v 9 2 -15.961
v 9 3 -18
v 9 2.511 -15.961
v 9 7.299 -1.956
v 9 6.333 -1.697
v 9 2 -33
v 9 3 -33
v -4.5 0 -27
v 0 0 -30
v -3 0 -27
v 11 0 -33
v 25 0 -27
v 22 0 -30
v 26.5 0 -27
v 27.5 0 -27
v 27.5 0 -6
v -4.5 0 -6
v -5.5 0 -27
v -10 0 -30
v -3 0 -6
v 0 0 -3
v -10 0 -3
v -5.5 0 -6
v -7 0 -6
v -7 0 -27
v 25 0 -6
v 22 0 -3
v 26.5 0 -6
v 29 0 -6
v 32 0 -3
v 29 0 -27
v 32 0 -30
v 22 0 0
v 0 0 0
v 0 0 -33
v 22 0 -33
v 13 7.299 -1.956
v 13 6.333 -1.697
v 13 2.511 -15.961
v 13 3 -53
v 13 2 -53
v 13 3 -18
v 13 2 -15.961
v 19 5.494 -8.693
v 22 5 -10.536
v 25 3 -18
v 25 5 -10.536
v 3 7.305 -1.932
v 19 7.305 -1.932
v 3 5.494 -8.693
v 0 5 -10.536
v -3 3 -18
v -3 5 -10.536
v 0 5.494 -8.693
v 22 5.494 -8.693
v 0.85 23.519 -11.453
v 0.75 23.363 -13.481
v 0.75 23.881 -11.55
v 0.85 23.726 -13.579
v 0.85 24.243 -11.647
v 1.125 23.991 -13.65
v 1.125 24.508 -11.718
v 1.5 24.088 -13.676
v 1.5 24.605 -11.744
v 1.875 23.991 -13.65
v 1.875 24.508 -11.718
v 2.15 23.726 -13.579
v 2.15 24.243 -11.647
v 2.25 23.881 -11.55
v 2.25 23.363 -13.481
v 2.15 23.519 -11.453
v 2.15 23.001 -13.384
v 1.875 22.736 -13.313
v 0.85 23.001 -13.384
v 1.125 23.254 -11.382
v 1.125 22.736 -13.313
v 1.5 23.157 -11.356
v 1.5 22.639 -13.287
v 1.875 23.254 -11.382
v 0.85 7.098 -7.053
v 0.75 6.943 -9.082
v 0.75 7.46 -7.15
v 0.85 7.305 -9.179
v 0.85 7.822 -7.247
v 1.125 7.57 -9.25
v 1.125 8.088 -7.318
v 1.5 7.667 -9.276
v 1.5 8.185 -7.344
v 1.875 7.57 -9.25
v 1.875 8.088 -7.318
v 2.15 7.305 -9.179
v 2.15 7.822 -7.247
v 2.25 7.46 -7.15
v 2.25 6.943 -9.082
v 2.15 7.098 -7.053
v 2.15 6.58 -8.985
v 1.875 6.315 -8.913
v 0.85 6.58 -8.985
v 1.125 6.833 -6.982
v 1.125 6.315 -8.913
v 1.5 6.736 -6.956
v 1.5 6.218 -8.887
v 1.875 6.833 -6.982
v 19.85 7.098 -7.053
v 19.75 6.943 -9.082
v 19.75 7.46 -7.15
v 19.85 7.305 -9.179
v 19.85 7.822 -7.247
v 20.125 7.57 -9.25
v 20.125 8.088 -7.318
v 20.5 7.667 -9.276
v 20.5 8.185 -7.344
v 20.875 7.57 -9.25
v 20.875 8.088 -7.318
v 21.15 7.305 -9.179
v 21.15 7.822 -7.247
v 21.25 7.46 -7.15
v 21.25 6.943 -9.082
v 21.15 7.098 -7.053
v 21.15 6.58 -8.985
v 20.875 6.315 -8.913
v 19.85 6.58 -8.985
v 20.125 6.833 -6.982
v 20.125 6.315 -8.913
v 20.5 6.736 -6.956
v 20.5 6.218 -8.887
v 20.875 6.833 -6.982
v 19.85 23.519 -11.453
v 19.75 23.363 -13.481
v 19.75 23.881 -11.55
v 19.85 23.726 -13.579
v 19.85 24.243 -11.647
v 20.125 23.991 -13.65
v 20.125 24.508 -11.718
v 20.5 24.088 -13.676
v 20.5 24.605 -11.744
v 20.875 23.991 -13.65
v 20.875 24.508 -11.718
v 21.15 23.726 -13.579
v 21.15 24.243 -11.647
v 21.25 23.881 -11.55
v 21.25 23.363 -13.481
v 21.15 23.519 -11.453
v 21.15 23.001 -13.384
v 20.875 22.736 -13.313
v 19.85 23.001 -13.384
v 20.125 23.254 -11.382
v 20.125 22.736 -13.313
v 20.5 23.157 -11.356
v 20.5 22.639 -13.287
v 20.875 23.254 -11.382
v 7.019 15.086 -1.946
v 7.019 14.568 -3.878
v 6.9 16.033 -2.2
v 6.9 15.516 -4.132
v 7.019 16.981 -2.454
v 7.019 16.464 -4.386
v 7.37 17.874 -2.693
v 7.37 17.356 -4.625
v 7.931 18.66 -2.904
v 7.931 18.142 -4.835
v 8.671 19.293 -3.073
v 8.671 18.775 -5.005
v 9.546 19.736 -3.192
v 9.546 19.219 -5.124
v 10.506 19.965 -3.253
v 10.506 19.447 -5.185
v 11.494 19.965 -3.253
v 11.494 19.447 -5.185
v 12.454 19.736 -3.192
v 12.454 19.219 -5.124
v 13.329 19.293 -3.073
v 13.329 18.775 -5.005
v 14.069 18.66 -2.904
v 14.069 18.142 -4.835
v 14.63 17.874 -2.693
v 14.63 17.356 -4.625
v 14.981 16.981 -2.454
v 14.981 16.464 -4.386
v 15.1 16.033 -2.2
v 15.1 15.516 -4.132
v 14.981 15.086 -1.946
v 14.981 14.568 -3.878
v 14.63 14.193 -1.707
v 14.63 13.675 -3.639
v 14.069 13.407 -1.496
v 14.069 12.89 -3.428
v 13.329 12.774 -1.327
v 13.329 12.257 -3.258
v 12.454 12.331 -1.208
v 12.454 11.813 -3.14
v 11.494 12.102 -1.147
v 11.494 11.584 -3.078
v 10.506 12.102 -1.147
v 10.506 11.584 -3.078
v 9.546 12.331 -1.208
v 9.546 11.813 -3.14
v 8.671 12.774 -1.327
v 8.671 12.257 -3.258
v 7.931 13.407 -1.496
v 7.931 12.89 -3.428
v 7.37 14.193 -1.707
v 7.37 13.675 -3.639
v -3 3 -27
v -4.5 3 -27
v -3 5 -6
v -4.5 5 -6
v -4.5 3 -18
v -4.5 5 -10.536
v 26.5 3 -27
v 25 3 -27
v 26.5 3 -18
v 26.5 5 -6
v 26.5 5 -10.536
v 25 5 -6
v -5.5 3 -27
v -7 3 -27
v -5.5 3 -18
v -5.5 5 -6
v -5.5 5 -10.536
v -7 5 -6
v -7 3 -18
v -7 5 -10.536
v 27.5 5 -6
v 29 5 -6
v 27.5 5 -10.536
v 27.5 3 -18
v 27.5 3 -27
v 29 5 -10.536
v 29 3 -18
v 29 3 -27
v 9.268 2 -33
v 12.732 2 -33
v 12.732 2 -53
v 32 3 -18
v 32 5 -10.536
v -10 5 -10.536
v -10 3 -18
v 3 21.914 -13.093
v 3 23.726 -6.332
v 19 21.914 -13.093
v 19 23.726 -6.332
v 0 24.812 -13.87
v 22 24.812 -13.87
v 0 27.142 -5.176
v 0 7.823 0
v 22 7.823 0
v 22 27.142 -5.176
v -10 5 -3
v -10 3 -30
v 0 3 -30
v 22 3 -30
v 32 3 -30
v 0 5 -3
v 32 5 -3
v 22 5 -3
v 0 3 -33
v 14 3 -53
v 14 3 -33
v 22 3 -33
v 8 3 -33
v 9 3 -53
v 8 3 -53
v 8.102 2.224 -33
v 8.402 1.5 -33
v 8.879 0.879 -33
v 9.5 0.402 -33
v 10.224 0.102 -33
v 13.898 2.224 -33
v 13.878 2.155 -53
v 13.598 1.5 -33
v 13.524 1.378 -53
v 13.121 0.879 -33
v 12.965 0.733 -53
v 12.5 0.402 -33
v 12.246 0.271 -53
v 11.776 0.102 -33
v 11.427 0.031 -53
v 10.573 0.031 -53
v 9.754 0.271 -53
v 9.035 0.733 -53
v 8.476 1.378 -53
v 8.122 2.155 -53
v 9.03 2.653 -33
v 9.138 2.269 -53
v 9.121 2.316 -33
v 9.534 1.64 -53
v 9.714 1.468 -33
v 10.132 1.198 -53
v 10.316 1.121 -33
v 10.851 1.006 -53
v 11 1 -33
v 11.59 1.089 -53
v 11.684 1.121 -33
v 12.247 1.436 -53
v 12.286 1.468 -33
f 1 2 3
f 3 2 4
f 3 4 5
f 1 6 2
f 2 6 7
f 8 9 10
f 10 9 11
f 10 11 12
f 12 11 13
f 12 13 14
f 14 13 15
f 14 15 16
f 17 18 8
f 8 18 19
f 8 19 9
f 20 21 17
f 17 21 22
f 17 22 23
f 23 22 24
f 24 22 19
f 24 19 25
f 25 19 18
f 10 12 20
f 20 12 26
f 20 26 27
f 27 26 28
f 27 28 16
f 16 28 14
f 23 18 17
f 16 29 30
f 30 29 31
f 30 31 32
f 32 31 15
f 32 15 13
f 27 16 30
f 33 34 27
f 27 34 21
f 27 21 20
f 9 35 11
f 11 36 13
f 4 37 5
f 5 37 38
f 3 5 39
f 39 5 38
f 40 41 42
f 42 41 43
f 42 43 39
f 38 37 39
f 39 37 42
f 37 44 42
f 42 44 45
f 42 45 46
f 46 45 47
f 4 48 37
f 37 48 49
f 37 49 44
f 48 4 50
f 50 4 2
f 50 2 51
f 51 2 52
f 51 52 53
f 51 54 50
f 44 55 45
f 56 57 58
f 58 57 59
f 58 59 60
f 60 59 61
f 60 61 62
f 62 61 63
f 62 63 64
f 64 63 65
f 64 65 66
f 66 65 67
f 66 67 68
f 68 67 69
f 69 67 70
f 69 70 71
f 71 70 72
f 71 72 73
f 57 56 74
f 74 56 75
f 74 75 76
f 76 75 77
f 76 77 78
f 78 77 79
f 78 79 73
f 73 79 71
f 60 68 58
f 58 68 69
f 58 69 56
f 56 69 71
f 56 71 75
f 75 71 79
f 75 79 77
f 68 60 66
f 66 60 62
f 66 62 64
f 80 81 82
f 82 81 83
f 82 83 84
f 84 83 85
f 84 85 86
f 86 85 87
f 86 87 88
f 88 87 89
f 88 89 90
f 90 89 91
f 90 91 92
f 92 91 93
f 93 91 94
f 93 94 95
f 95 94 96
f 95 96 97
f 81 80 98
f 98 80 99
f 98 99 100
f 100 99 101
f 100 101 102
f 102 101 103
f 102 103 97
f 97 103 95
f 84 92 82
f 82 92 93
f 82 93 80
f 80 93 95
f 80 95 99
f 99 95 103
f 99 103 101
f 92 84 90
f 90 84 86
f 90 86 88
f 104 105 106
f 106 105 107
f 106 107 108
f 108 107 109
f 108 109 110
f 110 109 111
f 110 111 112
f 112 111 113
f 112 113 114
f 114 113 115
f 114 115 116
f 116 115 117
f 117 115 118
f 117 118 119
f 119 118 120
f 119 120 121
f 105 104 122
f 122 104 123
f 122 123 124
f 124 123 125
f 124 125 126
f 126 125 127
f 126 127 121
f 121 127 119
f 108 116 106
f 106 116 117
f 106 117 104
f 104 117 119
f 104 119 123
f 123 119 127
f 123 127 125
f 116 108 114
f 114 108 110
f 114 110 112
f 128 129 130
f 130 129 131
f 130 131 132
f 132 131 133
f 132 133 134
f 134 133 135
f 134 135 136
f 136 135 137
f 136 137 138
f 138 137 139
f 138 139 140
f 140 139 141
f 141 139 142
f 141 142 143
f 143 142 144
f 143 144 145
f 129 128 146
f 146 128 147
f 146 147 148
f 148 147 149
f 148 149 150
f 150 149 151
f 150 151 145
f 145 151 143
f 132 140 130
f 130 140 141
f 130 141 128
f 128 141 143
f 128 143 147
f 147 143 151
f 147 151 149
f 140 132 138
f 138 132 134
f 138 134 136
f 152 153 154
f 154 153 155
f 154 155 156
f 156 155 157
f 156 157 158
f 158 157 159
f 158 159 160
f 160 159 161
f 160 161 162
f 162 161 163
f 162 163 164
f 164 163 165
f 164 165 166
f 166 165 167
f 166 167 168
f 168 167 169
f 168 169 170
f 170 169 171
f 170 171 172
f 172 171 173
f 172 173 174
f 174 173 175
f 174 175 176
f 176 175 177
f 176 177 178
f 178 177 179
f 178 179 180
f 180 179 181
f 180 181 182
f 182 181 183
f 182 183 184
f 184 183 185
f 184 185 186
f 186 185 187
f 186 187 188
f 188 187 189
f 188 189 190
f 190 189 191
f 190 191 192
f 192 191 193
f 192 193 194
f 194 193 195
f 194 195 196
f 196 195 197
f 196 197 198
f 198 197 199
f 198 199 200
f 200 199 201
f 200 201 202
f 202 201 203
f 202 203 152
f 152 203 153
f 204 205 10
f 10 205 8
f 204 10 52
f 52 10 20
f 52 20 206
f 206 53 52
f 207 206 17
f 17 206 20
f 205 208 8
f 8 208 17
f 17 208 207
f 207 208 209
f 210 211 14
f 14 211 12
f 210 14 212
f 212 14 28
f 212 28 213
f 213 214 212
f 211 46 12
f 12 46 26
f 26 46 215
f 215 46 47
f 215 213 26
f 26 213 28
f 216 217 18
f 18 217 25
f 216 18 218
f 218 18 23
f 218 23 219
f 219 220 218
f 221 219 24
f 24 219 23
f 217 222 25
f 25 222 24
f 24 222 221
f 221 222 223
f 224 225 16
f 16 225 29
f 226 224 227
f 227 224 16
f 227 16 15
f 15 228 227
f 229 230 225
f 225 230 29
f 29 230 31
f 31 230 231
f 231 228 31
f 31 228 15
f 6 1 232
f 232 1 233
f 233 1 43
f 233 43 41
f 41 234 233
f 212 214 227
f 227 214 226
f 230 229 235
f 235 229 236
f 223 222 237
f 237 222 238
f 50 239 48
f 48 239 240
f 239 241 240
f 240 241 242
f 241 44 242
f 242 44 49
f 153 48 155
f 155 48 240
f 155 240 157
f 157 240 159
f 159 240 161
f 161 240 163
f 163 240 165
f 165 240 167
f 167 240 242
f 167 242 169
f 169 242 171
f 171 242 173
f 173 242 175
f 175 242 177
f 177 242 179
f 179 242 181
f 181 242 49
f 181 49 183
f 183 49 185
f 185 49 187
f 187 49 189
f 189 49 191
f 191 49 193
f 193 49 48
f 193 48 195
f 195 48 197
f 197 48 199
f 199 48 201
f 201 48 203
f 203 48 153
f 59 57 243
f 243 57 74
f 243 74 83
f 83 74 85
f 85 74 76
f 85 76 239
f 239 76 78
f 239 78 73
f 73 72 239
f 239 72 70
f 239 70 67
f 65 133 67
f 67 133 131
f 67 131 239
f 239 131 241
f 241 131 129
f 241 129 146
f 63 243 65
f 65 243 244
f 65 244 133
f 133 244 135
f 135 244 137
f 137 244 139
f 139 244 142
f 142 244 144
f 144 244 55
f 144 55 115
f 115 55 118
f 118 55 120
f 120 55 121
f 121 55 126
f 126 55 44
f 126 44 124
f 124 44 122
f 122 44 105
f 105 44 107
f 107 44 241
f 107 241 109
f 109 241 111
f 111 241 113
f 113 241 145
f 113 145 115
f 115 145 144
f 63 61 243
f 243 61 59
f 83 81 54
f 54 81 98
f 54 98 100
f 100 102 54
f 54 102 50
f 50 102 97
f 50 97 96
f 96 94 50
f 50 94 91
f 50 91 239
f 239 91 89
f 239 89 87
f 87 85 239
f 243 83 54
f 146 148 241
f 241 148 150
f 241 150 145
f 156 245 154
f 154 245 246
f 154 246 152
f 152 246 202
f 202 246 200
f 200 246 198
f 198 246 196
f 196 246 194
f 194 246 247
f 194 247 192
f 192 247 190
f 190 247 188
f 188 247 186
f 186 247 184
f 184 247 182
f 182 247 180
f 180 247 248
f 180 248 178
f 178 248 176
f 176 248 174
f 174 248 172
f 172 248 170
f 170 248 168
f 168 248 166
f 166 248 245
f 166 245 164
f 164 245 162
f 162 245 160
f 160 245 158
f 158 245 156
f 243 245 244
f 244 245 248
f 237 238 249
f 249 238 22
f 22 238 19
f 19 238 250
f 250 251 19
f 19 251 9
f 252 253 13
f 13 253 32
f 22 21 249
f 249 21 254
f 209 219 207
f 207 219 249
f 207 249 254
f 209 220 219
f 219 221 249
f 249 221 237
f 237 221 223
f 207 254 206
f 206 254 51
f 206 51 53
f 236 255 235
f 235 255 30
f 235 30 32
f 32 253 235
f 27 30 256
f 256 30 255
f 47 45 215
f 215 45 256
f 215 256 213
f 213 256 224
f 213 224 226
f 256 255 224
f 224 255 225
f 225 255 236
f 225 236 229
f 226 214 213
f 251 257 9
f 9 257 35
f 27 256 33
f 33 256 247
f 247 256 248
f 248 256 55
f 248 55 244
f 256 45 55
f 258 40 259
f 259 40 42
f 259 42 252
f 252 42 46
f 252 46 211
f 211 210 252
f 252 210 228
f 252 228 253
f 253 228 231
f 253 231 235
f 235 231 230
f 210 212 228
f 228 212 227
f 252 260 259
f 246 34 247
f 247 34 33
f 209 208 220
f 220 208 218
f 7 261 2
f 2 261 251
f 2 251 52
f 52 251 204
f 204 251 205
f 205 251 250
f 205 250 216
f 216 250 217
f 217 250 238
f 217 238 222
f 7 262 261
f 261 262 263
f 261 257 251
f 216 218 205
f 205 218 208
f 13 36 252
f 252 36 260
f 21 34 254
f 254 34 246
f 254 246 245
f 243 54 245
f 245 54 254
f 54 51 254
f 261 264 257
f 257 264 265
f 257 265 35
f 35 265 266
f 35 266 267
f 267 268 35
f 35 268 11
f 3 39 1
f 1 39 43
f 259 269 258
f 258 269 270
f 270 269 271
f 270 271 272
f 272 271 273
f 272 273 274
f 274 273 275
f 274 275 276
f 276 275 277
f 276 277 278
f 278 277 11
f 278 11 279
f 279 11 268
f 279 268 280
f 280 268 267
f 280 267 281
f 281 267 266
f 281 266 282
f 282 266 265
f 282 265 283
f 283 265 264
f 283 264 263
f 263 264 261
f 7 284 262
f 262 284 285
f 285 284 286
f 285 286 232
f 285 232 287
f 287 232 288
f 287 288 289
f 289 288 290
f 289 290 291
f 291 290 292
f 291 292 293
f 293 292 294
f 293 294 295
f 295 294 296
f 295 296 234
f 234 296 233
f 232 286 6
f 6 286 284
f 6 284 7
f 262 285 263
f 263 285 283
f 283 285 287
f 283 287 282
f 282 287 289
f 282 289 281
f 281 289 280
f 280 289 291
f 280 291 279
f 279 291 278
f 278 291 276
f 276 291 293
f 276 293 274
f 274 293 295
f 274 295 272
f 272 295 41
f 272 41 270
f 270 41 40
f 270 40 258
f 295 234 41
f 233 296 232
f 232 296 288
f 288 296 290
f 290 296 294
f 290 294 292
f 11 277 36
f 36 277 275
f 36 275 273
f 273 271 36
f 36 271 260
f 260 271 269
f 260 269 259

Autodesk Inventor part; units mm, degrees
ref_plane "YZ Plane" through (0, 0, 0) normal (1, 0, 0) x (0, 1, 0)
ref_plane "XZ Plane" through (0, 0, 0) normal (0, 1, 0) x (-1, 0, 0)
ref_plane "XY Plane" through (0, 0, 0) normal (0, 0, 1) x (1, 0, 0)
sketch "Boceto9" plane through (0, 0, 0) normal (1, 0, 0) x (0, 1, 0)
  line L0 (0, 0) -> (0, -3)
  line L1 (0, -3) -> (0, -33)
  line L2 (0, -3) -> (3, -3)
  line L3 (3, -3) -> (3, -33)
  line L4 (3, -33) -> (0, -33)
  line L5 (3, -3) -> (3, -18)
  line L6 (3, -18) -> (7.8231, 0)
  line L7 (7.8231, 0) -> (0, 0)
  dimension "d22" = 3
  dimension "d23" = 30
  dimension "d24" = 3
  dimension "d25" = 15
  dimension "d26" = 15
extrude "Extrusión6" add sketch "Boceto9" along normal blind 22
sketch "Boceto10" plane through (0, 0, -33) normal (0, -1, 0) x (1, 0, 0)
  line L0 (22, 15) -> (22, 33) projected
  line L1 (22, 33) -> (22, 30)
  line L2 (22, 30) -> (22.6923, 30)
  line L3 (22, 30) -> (32, 30)
  line L4 (32, 30) -> (32, 3)
  line L5 (32, 3) -> (22, 3)
  line L6 (22, 0) -> (22, 15) projected
  line L7 (0, 33) -> (22, 33) projected
  line L8 (11, 33) -> (11, 0)
  line L9 (0, 0) -> (22, 0) projected
  line L10 (0, 15) -> (0, 33)
  line L11 (0, 33) -> (0, 30)
  line L12 (0, 30) -> (-0.6923, 30)
  line L13 (0, 30) -> (-10, 30)
  line L14 (-10, 30) -> (-10, 3)
  line L15 (-10, 3) -> (0, 3)
  line L16 (0, 0) -> (0, 15)
  line L17 (22, 33) -> (0, 33)
  line L18 (22, 0) -> (0, 0)
  dimension "d29" = 3
  dimension "d31" = 10
  dimension "d32" = 27
extrude "Extrusión7" add sketch "Boceto10" against normal blind 5 contours L0 L2 L3 L4 L5 L6 | L10 L16 L15 L14 L13 L12
sketch "Boceto11" plane through (32, 0, -3) normal (1, 0, 0) x (0, 0, -1)
  line L0 (27, 3) -> (15, 3) projected
  line L1 (15, 3) -> (7.5359, 5) projected
  line L2 (27, 5) -> (7.5359, 5) projected
  line L3 (27, 3) -> (15, 3) projected
  line L4 (15, 3) -> (7.5359, 5) projected
  line L5 (27, 5) -> (7.5359, 5) projected
  line L6 (27, 3) -> (27, 5) projected
  line L7 (27, 0) -> (0, 0) projected
  line L8 (0, 5) -> (27, 5) projected
  line L9 (0, 5) -> (27, 5) projected
  line L10 (27, 5) -> (7.5359, 5) projected
  line L11 (0, 5) -> (7.5359, 5) projected
  line L12 (27, 0) -> (0, 0) projected
  line L13 (27, 0) -> (27, 5) projected
  line L14 (0, 5) -> (27, 5) projected
  line L15 (0, 0) -> (0, 5) projected
  line L16 (27, 0) -> (30, 0) projected
  line L17 (30, 0) -> (30, 3) projected
  line L18 (27, 0) -> (27, 3) projected
  line L19 (30, 3) -> (27, 3) projected
  line L20 (30, 0) -> (30, 3) projected
  line L21 (27, 0) -> (30, 0) projected
  line L22 (30, 0) -> (30, 3) projected
  line L23 (30, 0) -> (30, 3) projected
  line L24 (30, 3) -> (27, 3) projected
  line L25 (30, 3) -> (27, 3) projected
  line L26 (27, 3) -> (15, 3) projected
  line L27 (27, 3) -> (15, 3) projected
  line L28 (30, 3) -> (27, 3) projected
  line L29 (-3, 0) -> (0, 0) projected
  line L30 (0, 0) -> (27, 0) projected
  line L31 (27, 0) -> (30, 0) projected
  line L32 (27, 0) -> (30, 0) projected
  line L33 (27, 0) -> (0, 0) projected
  line L34 (-3, 0) -> (0, 0) projected
  line L35 (15, 3) -> (7.5359, 5) projected
  line L36 (7.5359, 5) -> (-3, 7.8231) projected
  line L37 (7.5359, 5) -> (-3, 7.8231) projected
  line L38 (15, 3) -> (7.5359, 5) projected
  line L39 (27, 0) -> (27, 3) projected
  line L40 (27, 0) -> (27, 5) projected
  line L41 (15, 3) -> (7.5359, 5) projected
  line L42 (7.5359, 5) -> (27, 5) projected
  line L43 (27, 3) -> (27, 5) projected
  line L44 (27, 3) -> (15, 3) projected
  line L45 (27, 3) -> (15, 3) projected
  line L46 (27, 3) -> (27, 5) projected
  line L47 (7.5359, 5) -> (27, 5) projected
  line L48 (15, 3) -> (7.5359, 5) projected
  line L49 (27, 0) -> (27, 5) projected
  line L50 (27, 3) -> (27, 5) projected
  line L51 (27, 0) -> (27, 3) projected
  line L52 (27, 5) -> (0, 5) projected
  line L53 (7.5359, 5) -> (0, 5) projected
  line L54 (7.5359, 5) -> (27, 5) projected
  line L55 (0, 0) -> (27, 0) projected
  line L56 (0, 0) -> (0, 5) projected
  line L57 (27, 5) -> (0, 5) projected
  line L58 (27, 0) -> (27, 5) projected
  line L59 (0, 0) -> (27, 0) projected
  line L60 (27, 5) -> (0, 5) projected
  line L61 (27, 3) -> (27, 0) projected
  line L62 (27, 3) -> (27, 5) projected
  line L63 (30, 3) -> (27, 3) projected
  line L64 (30, 0) -> (30, 3) projected
  line L65 (27, 0) -> (30, 0) projected
  line L66 (27, 0) -> (27, 5) projected
  line L67 (27, 3) -> (27, 0) projected
  line L68 (27, 3) -> (27, 5) projected
  line L69 (27, 0) -> (27, 5) projected
  line L70 (27, 3) -> (27, 0) projected
  line L71 (27, 0) -> (30, 0) projected
  line L72 (30, 0) -> (30, 3) projected
  line L73 (30, 3) -> (27, 3) projected
extrude "Extrusión8" cut sketch "Boceto11" against normal up to surface (42 mm away) contours L0 L1 L2 L6
sketch "Boceto12" plane through (22, 0, 0) normal (1, 0, 0) x (0, 0, -1)
  line L0 (10.5359, 5) -> (0, 7.8231) projected
  line L1 (0, 7.8231) -> (5.1764, 27.1416)
  line L2 (0, 7.8231) -> (20, 7.8231) construction
  line L3 (5.1764, 27.1416) -> (13.8697, 24.8122)
  line L4 (13.8697, 24.8122) -> (8.6933, 5.4937)
  point P0 (0, 0)
  dimension "d37" = 20
  dimension "d38" = 75
  dimension "d40" = 9
extrude "Extrusión9" add sketch "Boceto12" against normal up to surface (22 mm away)
sketch "Boceto13" plane through (22, 24.8122, -13.8697) normal (0, -0.2588, -0.9659) x (-1, 0, 0)
  line L0 (22, -20) -> (0, -20) projected
  line L1 (0, -20) -> (3, -20)
  line L2 (0, 0) -> (0, -20) projected
  line L3 (0, 0) -> (3, 0)
  line L4 (0, 0) -> (22, 0) projected
  line L5 (3, 0) -> (3, -16.1177)
  line L6 (0, 0) -> (0, -3)
  line L7 (0, -3) -> (22, -3)
  line L8 (22, -3) -> (22, 0)
  line L9 (22, 0) -> (19, 0)
  line L10 (19, 0) -> (19, -20)
  line L11 (3, -3) -> (3, -20)
  point P0 (22, -27.5565)
  point P1 (19, -3)
  dimension "d43" = 3
  dimension "d44" = 3
  dimension "d45" = 3
  dimension "d46" = 3
extrude "Extrusión10" cut sketch "Boceto13" against normal blind 7 contours L0 L11 L5 L7 L10
sketch "Boceto14" plane through (0, 0, -33) normal (0, -1, 0) x (1, 0, 0)
  line L0 (32, 30) -> (32, 22.4641) projected
  line L1 (32, 30) -> (32, 27)
  line L2 (32, 30) -> (29, 30)
  line L3 (22, 30) -> (32, 30) projected
  line L4 (29, 30) -> (29, 3)
  line L5 (32, 3) -> (32, 30) projected
  line L6 (29, 3) -> (32, 3)
  line L7 (32, 3) -> (32, 6)
  line L8 (32, 6) -> (25, 6)
  line L9 (25, 6) -> (22, 6)
  line L10 (22, 6) -> (22, 30)
  line L11 (22, 30) -> (22, 27)
  line L12 (22, 27) -> (32, 27)
  line L13 (22, 3) -> (25, 3)
  line L14 (25, 3) -> (25, 30)
  line L15 (29, 27) -> (27.5, 27)
  line L16 (27.5, 27) -> (27.5, 6)
  line L17 (27.5, 6) -> (29, 6)
  line L18 (29, 6) -> (29, 27)
  line L19 (25, 27) -> (26.5, 27)
  line L20 (26.5, 27) -> (26.5, 6)
  line L21 (26.5, 6) -> (25, 6)
  line L22 (25, 6) -> (25, 27)
  line L23 (0, 33) -> (22, 33) projected
  line L24 (11, 33) -> (11, -0.1638)
  line L25 (-10, 30) -> (-10, 22.4641)
  line L26 (-10, 30) -> (-10, 27)
  line L27 (-10, 30) -> (-7, 30)
  line L28 (0, 30) -> (-10, 30)
  line L29 (-7, 30) -> (-7, 3)
  line L30 (-10, 3) -> (-10, 30)
  line L31 (-7, 3) -> (-10, 3)
  line L32 (-10, 3) -> (-10, 6)
  line L33 (-10, 6) -> (-3, 6)
  line L34 (-3, 6) -> (0, 6)
  line L35 (0, 6) -> (0, 30)
  line L36 (0, 30) -> (0, 27)
  line L37 (0, 27) -> (-10, 27)
  line L38 (0, 3) -> (-3, 3)
  line L39 (-3, 3) -> (-3, 30)
  line L40 (-7, 27) -> (-5.5, 27)
  line L41 (-5.5, 27) -> (-5.5, 6)
  line L42 (-5.5, 6) -> (-7, 6)
  line L43 (-7, 6) -> (-7, 27)
  line L44 (-3, 27) -> (-4.5, 27)
  line L45 (-4.5, 27) -> (-4.5, 6)
  line L46 (-4.5, 6) -> (-3, 6)
  line L47 (-3, 6) -> (-3, 27)
  line L48 (22, 33) -> (0, 33)
  point P0 (-7, 6)
  point P1 (25, 6)
  point P2 (29, 6)
  dimension "d52" = 3
  dimension "d53" = 3
  dimension "d54" = 3
  dimension "d55" = 7
  dimension "d56" = 90
  dimension "d57" = 3
  dimension "d58" = 3
  dimension "d59" = 3
  dimension "d60" = 1.5
  dimension "d61" = 1.5
  dimension "d62" = 21
extrude "Extrusión11" cut sketch "Boceto14" against normal blind 7 contours L4 L8 L16 L12 | L12 L20 L8 L14 | L37 L41 L33 L29 | L39 L33 L45 L37
sketch "Boceto15" plane through (22, 26.624, -7.1082) normal (0, -0.2588, -0.9659) x (-1, 0, 0)
  line L0 (19, -20) -> (3, -20) projected
  line L1 (19, -3) -> (19, -20) projected
  line L2 (3, -3) -> (19, -3) projected
  line L3 (3, -20) -> (3, -3) projected
  line L4 (22, -19.0155) -> (0, -19.0155) projected
  line L5 (3, -20) -> (19, -20)
  line L6 (25, -20) -> (-3, -20) projected
  line L7 (3, -20) -> (11, -20)
  line L8 (3, -20) -> (19, -20)
  line L9 (11, -20) -> (11, -3)
  line L10 (11, -20) -> (11, -11.5)
  circle A0 centre (11, -11.5) radius 4.1
  point P0 (22, -27.5565)
  dimension "d65" = 8.5
  dimension "d66" = 8.2
extrude "Extrusión12" cut sketch "Boceto15" against normal blind 2 contours A0 L9 | L9 A0
sketch "Boceto17" plane through (22, 24.8122, -13.8697) normal (0, -0.2588, -0.9659) x (-1, 0, 0)
  line L0 (0, 0) -> (1.5, 0)
  line L1 (0, 0) -> (22, 0) projected
  line L2 (1.5, 0) -> (1.5, -1.5)
  line L3 (22, 0) -> (20.5, 0)
  line L4 (20.5, 0) -> (20.5, -1.5)
  line L5 (0, -20) -> (1.5, -20)
  line L6 (3, -20) -> (0, -20) projected
  line L7 (1.5, -20) -> (1.5, -18.5)
  line L8 (1.5, -18.5) -> (20.5, -18.5)
  circle A0 centre (1.5, -18.5) radius 0.75
  circle A1 centre (20.5, -18.5) radius 0.75
  circle A2 centre (20.5, -1.5) radius 0.75
  circle A3 centre (1.5, -1.5) radius 0.75
  point P0 (22, -27.5565)
  dimension "d69" = 1.5
  dimension "d70" = 1.5
  dimension "d71" = 1.5
  dimension "d72" = 1.5
  dimension "d73" = 1.5
  dimension "d74" = 1.5
  dimension "d75" = 19
  dimension "d76" = 1.5
  dimension "d77" = 1.5
  dimension "d78" = 1.5
  dimension "d79" = 1.5
extrude "Extrusión13" cut sketch "Boceto17" against normal blind 2
sketch "Boceto18" plane through (3, 7.3054, -1.9319) normal (0, 0.9659, -0.2588) x (1, 0, 0)
  line L0 (19, 8.9076) -> (19, 7) projected
  line L1 (19, 8.9076) -> (19, 16.635)
  line L2 (-6, 16.635) -> (22, 16.635) projected
  line L3 (19, 16.635) -> (-3, 16.635)
  line L4 (-3, 16.635) -> (8, 16.635)
  line L5 (8, 16.635) -> (6, 16.635)
  line L6 (6, 16.635) -> (10, 16.635)
  line L7 (10, 16.635) -> (10, 0.0248)
  line L8 (10, 0.0248) -> (6, 0.0248)
  line L9 (6, 0.0248) -> (6, 16.635)
  point P0 (-3, 0.0248)
  dimension "d82" = 2
  dimension "d83" = 4
  dimension "d84" = 4
extrude "Extrusión14" cut sketch "Boceto18" against normal blind 1
sketch "Boceto19" plane through (0, 3, -33) normal (0, 1, 0) x (1, 0, 0)
  line L0 (0, 0) -> (22, 0) projected
  line L1 (9, -15) -> (9, 0)
  line L2 (9, 0) -> (13, 0)
  line L3 (13, 0) -> (13, -15)
  line L4 (13, -15) -> (25, -15) projected
  line L5 (13, -15) -> (13, -17.039)
  line L6 (13, -15) -> (13, -31.0442) projected
  line L7 (9, -31.303) -> (9, -15.2588) projected
  line L8 (9, -17.039) -> (13, -17.039)
  line L9 (9, -17.039) -> (9, -14.1278)
  point P0 (0, -33)
  dimension "d87" = 4
extrude "Extrusión16" cut sketch "Boceto19" against normal blind 1
sketch "Boceto20" plane through (0, 0, -33) normal (0, 0, -1) x (-1, 0, 0)
  line L0 (-13, 2) -> (-9, 2) projected
  line L1 (-11, 2) -> (-9, 2)
  line L2 (-13, 2) -> (-13, 3) projected
  line L3 (-13, 3) -> (-11, 3)
  circle A0 centre (-11, 3) radius 3
  circle A1 centre (-11, 3) radius 2
  line L4 (-13, 3) -> (-22, 3) projected
  line L5 (-14.8156, 3) -> (-7.3833, 3)
  point P0 (0, 0)
  point P1 (-8, 3)
  point P2 (-9, 3)
  point P3 (-12.7321, 2)
  point P4 (-14, 3)
  dimension "d92" = 2
  dimension "d93" = 6
  dimension "d94" = 4
extrude "Extrusión17" add sketch "Boceto20" along normal blind 20 contours L0 A1 L5 A0 L4 L2
properties part number "pieza prueba autodesk"
